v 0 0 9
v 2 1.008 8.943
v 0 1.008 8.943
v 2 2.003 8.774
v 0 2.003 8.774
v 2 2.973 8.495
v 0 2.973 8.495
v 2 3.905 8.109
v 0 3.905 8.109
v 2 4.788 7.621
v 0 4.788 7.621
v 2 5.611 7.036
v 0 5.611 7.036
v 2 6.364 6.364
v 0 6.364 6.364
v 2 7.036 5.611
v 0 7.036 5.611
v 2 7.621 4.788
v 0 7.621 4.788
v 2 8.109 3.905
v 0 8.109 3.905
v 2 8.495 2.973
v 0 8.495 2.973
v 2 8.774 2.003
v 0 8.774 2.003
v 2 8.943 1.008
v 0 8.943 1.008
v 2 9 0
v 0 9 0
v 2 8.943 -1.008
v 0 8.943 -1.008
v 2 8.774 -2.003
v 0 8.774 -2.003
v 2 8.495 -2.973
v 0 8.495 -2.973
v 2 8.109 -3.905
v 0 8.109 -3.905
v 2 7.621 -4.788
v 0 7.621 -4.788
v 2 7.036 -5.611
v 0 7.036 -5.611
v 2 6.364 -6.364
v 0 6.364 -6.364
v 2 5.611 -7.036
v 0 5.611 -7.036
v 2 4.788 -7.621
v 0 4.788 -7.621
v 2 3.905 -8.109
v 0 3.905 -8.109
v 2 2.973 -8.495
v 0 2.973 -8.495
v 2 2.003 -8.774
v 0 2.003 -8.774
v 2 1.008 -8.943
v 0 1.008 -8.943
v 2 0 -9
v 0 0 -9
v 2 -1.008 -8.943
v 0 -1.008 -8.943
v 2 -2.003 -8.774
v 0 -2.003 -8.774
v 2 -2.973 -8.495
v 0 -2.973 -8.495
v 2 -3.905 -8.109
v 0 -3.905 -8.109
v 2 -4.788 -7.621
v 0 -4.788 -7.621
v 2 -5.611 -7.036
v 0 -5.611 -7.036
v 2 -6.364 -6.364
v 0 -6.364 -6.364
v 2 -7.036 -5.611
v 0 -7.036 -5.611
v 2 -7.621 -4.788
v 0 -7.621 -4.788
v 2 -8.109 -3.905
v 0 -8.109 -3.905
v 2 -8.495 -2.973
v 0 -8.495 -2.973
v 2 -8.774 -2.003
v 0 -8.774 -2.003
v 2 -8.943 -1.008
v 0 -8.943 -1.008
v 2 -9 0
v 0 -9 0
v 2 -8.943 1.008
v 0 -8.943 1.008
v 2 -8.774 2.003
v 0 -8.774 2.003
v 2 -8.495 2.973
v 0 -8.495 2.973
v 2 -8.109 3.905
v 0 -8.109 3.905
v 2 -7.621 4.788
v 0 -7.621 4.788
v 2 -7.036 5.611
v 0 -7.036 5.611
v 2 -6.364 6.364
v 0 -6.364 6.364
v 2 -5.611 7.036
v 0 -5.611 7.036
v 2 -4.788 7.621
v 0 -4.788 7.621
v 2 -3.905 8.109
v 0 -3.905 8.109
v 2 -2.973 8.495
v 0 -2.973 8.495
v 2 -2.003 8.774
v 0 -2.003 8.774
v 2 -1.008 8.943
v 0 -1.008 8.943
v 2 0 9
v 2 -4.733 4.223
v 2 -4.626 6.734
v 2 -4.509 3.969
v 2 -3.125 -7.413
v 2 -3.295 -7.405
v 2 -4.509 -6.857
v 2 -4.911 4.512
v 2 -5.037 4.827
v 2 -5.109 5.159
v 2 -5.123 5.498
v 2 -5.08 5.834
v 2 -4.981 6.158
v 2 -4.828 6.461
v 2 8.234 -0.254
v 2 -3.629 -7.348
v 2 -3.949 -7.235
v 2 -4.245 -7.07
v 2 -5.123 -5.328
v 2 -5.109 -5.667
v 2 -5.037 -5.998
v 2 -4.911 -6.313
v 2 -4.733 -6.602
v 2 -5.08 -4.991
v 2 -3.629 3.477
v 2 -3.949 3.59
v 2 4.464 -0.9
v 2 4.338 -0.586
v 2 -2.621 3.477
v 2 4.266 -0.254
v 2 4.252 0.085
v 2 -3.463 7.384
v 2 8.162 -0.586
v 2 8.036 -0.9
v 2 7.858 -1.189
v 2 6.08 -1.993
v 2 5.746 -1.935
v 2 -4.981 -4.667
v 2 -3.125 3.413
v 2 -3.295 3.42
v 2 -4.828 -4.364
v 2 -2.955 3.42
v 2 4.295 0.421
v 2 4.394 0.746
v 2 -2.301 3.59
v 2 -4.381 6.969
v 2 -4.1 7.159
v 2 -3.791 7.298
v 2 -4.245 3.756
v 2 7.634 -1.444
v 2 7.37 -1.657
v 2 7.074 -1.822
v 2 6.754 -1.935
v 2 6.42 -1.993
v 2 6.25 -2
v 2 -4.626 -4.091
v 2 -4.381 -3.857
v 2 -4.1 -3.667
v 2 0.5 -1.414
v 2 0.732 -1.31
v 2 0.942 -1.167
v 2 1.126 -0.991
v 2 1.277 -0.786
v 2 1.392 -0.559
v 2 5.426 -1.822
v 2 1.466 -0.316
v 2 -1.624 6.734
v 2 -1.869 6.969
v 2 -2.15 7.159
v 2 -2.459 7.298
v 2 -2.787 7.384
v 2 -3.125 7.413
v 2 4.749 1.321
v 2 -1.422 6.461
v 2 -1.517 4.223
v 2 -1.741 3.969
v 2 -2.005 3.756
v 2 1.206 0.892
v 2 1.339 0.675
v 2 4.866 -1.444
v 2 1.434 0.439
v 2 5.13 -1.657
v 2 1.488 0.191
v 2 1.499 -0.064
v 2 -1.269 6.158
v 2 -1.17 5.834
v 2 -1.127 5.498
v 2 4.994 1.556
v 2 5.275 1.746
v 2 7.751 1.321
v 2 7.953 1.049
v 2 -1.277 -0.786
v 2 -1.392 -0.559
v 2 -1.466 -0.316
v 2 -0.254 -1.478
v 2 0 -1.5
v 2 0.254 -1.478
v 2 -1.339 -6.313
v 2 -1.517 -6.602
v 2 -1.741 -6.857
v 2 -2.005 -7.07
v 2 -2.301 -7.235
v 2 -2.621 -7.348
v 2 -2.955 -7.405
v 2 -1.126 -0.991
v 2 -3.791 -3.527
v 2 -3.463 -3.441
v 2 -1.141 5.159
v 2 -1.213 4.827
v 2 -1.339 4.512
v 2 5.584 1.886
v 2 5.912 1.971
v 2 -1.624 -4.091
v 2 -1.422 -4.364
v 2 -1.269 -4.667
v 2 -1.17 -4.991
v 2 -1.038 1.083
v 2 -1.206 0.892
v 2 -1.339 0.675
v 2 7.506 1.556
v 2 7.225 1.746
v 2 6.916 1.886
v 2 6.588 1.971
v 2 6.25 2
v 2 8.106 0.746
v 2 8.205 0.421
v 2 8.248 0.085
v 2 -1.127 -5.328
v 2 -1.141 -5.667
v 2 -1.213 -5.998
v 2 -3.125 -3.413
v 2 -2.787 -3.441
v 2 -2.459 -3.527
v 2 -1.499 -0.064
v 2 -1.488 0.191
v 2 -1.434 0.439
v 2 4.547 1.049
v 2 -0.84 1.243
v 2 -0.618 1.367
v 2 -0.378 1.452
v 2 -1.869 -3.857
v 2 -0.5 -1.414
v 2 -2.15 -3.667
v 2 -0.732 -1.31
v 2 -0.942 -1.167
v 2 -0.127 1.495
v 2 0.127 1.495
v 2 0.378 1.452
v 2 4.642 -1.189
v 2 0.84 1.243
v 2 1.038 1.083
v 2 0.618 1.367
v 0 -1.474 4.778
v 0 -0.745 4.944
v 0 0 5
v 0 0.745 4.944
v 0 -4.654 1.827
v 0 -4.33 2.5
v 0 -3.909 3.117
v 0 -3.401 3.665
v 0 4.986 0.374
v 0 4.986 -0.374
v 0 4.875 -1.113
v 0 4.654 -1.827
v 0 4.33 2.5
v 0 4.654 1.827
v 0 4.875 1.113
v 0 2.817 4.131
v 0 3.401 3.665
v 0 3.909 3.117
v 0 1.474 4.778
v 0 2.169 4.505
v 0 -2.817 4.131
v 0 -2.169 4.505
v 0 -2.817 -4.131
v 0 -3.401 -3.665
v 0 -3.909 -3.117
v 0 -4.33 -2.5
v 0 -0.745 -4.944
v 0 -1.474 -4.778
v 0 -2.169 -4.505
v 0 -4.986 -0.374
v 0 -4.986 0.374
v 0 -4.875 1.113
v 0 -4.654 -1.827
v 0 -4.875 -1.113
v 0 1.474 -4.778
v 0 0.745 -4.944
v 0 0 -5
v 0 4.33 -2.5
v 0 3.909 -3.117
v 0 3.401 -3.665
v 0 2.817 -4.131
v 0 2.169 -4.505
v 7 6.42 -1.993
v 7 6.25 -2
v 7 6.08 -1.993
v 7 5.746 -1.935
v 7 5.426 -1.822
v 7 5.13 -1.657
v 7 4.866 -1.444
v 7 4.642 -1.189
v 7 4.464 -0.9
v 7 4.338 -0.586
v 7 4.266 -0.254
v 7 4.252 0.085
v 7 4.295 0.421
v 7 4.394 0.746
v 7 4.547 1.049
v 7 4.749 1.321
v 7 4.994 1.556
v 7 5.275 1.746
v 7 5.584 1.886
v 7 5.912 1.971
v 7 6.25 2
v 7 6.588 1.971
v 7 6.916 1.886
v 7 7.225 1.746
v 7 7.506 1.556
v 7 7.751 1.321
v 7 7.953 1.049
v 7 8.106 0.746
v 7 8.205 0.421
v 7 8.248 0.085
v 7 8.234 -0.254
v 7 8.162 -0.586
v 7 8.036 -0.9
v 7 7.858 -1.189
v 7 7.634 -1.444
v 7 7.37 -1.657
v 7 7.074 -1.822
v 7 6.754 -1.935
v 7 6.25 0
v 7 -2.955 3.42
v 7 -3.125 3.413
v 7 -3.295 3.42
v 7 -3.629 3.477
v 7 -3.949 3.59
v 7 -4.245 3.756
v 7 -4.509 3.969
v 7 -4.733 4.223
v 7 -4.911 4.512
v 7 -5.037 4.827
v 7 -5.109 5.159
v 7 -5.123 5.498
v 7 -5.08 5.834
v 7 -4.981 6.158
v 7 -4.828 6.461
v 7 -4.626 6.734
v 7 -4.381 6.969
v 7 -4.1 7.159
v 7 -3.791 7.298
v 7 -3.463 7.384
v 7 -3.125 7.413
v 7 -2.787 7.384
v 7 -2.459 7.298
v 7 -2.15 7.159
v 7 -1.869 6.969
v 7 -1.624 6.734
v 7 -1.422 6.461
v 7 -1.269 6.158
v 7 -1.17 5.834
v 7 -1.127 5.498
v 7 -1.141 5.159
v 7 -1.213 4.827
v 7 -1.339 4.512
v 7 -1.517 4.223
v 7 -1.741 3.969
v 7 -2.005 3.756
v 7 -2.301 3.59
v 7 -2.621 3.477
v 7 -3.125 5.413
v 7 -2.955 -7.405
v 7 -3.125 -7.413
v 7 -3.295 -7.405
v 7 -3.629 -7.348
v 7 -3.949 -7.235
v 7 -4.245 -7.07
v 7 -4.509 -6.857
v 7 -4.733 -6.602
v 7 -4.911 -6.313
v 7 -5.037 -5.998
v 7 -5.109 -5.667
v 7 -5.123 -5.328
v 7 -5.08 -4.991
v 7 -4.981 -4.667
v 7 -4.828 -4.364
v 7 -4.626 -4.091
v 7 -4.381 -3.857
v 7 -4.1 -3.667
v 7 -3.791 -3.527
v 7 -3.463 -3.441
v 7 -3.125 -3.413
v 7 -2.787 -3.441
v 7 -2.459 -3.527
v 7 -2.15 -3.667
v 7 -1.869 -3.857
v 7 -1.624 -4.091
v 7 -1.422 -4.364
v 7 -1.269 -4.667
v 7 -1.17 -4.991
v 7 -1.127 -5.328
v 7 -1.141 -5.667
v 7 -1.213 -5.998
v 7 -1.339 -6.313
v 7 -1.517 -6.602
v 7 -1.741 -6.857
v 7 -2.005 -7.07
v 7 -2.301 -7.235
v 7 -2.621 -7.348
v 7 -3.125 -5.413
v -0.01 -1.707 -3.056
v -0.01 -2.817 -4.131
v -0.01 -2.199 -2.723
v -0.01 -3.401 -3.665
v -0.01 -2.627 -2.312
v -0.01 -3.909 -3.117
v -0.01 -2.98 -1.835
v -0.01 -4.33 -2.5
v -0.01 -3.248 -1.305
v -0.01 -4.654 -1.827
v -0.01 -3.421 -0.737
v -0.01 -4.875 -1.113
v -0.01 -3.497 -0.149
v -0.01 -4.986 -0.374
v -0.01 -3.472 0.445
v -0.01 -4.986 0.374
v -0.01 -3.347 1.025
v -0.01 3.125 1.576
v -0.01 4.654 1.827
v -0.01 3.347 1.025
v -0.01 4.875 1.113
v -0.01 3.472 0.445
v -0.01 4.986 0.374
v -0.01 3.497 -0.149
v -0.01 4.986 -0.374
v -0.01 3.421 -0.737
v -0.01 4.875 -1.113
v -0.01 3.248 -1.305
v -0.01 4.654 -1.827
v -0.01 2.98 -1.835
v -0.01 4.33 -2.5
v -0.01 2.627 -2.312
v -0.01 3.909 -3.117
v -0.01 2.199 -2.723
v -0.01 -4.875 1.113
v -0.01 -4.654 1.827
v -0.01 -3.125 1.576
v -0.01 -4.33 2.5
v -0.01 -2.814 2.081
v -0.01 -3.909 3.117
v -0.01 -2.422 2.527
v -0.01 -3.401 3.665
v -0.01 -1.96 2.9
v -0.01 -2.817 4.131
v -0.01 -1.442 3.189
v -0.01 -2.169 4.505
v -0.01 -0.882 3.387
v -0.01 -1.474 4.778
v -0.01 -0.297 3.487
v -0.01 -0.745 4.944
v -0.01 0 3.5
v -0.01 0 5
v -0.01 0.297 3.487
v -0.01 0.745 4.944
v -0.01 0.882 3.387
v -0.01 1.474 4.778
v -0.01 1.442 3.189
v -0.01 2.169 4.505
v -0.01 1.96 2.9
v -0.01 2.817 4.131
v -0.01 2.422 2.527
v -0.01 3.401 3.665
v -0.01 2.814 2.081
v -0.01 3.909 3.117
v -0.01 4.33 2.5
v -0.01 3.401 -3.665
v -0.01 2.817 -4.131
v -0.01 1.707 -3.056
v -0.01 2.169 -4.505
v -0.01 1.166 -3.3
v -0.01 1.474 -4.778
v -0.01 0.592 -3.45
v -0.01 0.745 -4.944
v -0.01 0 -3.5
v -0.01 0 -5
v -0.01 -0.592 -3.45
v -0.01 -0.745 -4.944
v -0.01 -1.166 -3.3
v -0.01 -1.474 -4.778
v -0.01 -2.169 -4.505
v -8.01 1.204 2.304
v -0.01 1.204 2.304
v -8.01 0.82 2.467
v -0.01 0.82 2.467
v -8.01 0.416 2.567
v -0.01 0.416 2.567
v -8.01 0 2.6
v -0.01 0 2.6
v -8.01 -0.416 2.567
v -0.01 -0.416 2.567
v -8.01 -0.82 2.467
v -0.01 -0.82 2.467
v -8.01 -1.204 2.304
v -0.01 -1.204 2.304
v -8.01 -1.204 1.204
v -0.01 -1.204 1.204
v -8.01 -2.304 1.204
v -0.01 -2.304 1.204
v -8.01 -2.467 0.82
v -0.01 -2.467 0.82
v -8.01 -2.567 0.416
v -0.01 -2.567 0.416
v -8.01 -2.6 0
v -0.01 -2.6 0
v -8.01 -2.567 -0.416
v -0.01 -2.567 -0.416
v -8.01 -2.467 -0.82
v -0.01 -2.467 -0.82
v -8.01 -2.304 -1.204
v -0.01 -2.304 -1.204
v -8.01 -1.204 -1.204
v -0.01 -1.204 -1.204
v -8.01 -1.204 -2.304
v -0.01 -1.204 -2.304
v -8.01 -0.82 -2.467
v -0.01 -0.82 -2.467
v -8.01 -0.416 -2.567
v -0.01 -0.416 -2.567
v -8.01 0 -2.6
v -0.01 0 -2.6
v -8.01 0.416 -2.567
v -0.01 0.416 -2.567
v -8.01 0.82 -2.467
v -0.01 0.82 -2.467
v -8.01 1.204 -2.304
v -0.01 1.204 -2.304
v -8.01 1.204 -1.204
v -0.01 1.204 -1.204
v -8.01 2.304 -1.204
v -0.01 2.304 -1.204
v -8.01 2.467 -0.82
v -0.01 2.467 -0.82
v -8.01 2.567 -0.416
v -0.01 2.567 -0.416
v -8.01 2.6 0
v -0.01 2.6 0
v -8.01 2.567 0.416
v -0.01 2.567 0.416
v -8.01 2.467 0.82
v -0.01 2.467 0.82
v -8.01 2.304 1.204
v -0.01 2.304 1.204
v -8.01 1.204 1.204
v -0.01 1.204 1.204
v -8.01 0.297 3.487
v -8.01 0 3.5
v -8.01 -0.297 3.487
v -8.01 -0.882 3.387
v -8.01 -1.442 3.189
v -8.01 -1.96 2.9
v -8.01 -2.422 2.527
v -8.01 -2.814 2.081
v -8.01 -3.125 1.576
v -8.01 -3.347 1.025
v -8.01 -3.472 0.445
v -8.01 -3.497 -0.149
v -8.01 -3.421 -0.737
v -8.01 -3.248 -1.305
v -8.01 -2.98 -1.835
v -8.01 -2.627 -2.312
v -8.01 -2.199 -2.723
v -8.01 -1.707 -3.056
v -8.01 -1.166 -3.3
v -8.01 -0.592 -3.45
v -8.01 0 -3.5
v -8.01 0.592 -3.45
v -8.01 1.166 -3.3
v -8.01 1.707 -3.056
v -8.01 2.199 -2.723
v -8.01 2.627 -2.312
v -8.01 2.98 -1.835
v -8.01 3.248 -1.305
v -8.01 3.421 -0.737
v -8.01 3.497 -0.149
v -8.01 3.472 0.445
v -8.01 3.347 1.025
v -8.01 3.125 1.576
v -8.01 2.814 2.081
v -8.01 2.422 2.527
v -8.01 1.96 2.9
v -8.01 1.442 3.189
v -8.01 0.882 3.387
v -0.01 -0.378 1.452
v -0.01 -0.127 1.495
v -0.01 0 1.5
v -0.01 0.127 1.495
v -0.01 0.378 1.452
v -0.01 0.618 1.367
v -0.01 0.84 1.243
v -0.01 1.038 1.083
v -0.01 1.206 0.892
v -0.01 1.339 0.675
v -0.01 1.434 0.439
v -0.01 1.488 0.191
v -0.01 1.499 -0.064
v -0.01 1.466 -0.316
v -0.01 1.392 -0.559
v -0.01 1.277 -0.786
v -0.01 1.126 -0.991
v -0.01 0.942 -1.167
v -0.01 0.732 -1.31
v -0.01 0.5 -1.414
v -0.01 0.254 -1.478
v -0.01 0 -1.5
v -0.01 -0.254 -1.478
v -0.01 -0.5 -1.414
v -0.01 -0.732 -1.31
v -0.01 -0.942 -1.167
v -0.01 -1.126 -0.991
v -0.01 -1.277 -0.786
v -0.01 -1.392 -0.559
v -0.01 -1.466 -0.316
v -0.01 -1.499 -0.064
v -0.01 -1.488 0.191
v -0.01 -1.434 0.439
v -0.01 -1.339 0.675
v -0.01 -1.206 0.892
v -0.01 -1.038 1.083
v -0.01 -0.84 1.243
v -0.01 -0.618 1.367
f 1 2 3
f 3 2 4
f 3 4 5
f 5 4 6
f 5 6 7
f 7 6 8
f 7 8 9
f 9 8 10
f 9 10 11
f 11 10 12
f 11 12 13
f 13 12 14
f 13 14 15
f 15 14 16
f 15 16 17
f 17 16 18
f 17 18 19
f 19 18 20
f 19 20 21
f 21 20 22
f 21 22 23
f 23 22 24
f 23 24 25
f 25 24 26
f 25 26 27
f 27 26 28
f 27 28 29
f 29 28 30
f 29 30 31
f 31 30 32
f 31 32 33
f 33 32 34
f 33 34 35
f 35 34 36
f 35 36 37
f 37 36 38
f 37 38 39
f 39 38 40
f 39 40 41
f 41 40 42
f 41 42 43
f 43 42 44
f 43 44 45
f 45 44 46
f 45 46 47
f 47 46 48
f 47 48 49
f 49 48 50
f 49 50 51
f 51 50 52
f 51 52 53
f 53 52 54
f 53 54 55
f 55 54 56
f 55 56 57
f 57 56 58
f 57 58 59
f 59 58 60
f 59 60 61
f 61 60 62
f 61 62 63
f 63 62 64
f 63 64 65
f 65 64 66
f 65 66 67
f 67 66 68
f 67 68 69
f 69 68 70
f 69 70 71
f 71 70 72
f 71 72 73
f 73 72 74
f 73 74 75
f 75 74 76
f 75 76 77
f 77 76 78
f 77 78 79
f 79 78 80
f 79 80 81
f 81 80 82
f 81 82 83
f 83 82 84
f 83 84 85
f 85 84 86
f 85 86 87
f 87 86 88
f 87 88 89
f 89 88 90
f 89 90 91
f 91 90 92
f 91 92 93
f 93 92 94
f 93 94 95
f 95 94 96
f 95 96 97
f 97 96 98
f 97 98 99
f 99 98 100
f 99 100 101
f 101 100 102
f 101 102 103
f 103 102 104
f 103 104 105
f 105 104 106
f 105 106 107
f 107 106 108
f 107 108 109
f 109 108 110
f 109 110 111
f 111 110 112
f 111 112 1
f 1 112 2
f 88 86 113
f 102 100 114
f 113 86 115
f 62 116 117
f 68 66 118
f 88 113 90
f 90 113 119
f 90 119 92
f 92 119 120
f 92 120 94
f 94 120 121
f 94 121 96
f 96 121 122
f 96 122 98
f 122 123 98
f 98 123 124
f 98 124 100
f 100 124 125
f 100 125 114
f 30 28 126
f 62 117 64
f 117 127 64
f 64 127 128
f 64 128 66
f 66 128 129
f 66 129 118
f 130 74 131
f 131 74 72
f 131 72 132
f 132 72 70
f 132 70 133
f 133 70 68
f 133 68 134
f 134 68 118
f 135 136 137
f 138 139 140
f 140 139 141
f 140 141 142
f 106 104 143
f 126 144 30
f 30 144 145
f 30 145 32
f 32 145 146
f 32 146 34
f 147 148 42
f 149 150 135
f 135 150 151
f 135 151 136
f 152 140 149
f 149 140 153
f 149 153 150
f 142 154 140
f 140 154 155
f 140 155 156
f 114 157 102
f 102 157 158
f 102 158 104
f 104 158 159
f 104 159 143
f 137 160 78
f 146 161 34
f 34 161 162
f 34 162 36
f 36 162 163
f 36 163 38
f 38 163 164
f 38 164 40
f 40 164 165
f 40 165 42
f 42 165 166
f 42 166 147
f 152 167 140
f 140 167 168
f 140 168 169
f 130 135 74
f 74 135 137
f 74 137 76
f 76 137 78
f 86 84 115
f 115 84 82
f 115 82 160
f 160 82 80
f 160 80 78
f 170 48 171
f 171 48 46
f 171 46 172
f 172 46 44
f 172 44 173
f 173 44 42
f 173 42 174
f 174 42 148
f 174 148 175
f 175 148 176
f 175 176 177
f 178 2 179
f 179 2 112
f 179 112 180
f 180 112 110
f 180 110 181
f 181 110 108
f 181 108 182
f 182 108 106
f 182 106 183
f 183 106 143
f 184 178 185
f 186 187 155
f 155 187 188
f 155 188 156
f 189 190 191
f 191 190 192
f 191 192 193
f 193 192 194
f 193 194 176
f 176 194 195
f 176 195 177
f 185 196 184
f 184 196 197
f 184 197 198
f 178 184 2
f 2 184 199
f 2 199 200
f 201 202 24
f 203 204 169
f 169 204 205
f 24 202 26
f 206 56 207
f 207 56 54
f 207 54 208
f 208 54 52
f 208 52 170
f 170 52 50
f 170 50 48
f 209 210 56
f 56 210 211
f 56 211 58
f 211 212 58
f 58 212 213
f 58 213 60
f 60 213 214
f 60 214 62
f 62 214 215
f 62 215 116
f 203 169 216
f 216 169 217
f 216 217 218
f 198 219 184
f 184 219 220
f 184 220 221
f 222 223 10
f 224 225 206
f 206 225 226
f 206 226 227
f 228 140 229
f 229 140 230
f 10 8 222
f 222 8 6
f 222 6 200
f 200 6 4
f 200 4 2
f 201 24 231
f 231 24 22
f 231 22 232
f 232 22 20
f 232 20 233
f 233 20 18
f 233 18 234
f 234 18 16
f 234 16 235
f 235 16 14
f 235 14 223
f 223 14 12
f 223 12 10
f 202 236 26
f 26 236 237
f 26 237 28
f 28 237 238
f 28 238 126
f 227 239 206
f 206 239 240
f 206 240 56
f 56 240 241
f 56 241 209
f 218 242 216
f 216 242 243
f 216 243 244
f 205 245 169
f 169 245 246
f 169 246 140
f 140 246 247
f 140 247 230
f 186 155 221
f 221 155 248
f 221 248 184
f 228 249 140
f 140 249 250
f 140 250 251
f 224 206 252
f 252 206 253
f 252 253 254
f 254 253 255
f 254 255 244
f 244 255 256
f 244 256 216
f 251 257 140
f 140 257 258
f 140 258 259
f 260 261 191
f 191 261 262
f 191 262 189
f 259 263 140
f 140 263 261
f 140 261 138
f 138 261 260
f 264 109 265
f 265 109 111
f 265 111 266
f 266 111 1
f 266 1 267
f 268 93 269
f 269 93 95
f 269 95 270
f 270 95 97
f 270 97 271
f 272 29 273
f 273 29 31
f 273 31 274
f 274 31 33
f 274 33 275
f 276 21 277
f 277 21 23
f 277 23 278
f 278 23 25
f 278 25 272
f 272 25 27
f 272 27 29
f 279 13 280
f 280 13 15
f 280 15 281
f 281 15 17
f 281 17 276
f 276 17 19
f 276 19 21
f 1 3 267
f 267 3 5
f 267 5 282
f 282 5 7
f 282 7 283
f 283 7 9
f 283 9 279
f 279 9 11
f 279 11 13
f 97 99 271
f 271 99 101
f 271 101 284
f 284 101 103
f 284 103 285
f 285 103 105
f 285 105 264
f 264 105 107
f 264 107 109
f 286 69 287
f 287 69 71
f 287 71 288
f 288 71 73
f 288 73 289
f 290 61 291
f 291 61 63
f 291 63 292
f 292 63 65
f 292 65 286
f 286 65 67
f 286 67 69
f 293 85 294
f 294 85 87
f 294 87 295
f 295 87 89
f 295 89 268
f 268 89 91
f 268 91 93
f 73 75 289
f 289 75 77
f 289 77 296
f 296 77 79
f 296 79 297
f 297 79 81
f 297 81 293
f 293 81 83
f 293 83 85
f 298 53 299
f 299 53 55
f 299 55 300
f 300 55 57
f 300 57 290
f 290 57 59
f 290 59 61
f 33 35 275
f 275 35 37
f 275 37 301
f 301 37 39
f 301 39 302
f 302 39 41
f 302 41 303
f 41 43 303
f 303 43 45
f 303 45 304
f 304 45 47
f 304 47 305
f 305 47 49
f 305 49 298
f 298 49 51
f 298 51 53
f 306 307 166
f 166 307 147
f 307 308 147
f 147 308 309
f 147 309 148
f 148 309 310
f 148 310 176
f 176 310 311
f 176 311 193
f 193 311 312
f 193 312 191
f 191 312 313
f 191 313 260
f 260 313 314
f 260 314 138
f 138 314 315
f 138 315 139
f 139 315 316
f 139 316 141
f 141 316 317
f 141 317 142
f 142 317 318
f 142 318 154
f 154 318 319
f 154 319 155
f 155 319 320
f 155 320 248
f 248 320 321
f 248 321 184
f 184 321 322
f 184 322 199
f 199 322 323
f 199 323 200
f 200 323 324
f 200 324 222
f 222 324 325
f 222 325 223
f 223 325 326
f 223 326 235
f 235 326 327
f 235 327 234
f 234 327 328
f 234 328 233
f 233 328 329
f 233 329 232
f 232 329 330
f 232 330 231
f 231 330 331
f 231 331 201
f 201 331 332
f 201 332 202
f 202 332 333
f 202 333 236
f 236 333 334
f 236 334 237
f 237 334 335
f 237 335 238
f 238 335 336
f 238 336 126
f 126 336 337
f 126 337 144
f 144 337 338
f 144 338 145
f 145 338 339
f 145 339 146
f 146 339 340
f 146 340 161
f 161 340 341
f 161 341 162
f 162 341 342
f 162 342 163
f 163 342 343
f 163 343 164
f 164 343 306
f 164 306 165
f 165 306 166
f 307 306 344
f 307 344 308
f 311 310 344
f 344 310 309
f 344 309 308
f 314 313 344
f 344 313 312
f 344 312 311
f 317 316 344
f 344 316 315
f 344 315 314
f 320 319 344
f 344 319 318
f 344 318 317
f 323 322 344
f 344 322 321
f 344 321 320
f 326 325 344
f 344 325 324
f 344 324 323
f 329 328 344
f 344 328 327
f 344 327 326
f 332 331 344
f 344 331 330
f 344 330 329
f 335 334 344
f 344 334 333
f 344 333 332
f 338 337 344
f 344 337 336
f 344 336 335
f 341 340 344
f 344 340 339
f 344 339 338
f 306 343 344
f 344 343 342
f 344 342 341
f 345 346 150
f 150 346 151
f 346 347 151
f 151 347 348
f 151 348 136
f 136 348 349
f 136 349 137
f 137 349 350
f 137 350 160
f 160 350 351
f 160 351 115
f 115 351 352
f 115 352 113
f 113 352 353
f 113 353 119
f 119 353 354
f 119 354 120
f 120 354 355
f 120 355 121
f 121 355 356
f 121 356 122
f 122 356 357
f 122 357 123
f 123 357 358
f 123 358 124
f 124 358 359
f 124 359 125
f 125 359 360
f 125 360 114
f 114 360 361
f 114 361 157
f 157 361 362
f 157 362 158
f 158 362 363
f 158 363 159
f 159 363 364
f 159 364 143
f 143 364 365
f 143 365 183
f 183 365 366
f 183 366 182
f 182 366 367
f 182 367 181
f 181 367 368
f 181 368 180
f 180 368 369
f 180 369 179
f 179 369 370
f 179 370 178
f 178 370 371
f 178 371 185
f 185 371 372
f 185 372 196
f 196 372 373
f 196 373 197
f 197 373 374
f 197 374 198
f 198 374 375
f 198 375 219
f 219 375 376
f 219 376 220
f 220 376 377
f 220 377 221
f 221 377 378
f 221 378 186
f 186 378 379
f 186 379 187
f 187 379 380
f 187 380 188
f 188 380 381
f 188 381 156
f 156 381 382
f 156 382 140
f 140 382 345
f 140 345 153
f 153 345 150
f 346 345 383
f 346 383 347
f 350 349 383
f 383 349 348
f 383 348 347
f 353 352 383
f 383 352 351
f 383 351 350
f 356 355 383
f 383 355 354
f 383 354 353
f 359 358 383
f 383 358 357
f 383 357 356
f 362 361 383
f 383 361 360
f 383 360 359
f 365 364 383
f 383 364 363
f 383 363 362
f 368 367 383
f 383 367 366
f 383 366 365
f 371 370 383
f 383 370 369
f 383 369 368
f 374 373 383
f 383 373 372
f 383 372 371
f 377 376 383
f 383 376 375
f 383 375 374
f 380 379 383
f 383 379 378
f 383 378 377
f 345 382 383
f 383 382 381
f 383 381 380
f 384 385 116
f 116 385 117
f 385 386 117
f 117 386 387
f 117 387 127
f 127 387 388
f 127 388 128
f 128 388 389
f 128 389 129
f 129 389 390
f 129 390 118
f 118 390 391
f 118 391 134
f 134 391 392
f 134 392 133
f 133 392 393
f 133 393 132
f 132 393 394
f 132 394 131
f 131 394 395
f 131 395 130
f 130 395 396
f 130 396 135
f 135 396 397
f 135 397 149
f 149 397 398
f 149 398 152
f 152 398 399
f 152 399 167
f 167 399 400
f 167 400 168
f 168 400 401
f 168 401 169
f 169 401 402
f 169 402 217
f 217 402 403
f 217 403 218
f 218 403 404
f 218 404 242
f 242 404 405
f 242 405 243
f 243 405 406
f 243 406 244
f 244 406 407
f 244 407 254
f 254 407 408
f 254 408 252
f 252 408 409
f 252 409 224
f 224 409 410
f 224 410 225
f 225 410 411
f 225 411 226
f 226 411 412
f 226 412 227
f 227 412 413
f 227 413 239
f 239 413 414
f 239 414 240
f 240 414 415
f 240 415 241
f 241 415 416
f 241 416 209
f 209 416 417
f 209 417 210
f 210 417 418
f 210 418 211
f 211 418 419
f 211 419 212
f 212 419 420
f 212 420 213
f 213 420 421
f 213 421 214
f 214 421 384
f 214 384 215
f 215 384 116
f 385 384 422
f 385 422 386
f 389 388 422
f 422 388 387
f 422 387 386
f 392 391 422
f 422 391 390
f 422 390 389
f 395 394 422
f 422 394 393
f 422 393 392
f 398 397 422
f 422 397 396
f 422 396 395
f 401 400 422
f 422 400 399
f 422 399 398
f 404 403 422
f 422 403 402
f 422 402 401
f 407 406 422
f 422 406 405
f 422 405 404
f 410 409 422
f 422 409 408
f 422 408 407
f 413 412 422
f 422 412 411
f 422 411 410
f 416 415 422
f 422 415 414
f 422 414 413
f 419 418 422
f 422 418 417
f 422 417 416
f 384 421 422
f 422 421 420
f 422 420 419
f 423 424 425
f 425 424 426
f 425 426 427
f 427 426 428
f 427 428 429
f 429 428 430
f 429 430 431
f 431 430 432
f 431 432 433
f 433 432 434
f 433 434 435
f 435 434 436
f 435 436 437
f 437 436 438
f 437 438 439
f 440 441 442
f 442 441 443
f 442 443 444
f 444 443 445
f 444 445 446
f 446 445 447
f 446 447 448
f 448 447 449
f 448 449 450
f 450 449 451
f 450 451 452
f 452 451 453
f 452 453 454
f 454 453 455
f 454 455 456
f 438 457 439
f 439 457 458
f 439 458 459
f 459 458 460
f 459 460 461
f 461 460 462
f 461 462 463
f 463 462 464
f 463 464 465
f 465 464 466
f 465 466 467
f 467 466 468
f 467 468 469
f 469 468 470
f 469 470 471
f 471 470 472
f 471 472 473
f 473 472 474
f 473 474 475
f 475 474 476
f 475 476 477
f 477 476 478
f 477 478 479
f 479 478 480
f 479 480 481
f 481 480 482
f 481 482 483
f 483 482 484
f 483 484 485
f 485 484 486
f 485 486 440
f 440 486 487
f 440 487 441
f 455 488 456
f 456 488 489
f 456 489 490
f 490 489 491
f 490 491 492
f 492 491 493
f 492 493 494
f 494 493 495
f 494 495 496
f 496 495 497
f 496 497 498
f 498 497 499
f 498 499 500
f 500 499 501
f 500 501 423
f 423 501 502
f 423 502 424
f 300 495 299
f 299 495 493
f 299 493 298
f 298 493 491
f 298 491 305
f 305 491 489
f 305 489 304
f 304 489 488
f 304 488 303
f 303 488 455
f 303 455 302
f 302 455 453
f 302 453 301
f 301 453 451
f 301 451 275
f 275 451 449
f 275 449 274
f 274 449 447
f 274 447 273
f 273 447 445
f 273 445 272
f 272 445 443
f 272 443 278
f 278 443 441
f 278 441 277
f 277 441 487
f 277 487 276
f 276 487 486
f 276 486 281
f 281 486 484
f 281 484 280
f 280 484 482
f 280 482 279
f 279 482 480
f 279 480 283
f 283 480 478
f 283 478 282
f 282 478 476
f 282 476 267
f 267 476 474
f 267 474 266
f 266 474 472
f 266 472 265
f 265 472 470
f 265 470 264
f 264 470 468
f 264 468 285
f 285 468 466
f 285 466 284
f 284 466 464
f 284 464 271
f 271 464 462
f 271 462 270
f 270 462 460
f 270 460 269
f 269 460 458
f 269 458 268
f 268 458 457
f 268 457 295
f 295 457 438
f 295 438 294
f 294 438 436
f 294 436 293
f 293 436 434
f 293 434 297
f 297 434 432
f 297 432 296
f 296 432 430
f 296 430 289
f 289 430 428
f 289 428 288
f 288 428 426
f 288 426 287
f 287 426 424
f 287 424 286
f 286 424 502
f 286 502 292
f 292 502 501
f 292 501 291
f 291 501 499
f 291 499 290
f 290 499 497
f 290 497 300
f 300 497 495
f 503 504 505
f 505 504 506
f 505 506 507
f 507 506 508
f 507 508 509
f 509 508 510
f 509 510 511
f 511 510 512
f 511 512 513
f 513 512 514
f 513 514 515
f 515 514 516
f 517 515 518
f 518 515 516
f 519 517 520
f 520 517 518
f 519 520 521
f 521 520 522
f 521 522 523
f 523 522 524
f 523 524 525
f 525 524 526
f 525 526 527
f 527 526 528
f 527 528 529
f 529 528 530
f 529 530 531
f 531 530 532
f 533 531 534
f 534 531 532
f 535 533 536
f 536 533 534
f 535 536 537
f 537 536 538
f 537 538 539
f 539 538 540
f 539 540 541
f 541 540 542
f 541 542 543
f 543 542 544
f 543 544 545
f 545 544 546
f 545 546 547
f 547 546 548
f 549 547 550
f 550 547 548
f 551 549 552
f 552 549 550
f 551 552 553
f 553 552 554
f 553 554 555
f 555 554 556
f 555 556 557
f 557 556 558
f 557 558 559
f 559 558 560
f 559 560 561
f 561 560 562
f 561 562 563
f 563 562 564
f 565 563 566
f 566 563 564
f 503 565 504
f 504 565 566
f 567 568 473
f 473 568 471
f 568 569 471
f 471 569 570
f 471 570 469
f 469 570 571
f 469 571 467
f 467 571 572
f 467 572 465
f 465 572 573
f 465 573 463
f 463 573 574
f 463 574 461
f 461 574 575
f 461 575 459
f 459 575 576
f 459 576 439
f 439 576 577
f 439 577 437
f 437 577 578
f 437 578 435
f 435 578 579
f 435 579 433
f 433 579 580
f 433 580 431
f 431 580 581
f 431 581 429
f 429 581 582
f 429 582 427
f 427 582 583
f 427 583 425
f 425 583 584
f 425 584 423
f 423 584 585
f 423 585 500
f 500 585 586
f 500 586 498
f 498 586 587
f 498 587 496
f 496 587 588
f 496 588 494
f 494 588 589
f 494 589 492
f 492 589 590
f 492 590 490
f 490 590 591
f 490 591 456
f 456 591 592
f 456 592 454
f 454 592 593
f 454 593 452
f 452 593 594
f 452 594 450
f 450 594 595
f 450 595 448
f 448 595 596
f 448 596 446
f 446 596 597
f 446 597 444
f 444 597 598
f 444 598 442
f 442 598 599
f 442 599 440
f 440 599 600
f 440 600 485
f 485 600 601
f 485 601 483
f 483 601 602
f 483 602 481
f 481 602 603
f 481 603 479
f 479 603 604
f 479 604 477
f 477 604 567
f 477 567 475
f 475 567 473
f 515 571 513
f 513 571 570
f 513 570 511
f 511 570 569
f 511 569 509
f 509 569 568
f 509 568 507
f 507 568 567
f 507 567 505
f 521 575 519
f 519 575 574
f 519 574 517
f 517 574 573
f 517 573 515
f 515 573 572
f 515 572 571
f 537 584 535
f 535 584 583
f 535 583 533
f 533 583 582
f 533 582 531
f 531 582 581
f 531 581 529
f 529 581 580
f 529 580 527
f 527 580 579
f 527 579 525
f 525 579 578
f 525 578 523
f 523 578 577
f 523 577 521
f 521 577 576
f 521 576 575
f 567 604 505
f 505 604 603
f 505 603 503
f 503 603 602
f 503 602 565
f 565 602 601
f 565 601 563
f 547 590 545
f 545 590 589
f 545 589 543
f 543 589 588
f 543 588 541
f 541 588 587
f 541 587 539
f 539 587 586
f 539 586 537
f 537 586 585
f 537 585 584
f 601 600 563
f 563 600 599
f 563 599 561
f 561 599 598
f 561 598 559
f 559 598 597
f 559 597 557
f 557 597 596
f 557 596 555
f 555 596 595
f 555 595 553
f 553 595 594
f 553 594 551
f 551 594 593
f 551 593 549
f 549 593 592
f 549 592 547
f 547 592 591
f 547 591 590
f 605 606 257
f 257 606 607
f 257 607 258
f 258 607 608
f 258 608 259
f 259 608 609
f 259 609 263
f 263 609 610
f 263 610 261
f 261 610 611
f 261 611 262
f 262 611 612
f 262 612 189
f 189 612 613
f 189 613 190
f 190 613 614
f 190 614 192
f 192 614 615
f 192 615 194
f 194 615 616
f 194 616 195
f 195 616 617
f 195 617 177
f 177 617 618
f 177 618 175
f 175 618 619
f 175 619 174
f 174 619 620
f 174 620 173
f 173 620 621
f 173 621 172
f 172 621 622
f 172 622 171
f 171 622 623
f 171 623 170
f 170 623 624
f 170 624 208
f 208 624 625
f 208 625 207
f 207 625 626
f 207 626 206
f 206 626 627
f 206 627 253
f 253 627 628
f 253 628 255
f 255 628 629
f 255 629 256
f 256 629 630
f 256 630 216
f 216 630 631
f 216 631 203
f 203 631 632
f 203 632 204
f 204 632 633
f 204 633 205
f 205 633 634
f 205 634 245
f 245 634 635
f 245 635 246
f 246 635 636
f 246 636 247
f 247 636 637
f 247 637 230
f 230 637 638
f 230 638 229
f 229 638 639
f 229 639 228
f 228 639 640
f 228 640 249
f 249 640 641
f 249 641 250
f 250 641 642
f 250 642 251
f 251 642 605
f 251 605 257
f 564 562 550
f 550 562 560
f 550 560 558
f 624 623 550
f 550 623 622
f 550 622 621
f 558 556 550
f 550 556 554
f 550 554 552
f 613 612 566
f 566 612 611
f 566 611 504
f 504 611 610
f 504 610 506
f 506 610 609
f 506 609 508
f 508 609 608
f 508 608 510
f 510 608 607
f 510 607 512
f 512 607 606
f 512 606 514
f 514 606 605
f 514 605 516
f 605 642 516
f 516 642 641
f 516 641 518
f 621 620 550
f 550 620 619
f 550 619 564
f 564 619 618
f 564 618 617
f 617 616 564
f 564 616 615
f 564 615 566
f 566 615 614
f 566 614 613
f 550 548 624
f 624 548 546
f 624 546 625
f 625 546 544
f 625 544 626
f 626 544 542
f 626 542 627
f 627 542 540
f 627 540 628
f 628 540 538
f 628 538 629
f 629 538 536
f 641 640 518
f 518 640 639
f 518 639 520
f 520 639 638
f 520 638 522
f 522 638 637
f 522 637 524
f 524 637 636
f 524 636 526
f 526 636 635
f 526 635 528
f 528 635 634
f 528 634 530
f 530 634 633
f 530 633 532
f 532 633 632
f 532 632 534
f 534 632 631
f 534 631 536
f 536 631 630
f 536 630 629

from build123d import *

# Parameters (mm, degrees)
SKETCH_1_R          = 9
EXTRUDE_1_DEPTH     = 2
EXTRUDE_START       = 2
SKETCH_1_3_R        = 2
EXTRUDE_2_DEPTH     = 5
SKETCH_2_R          = 5
SKETCH_2_R_2        = 1.5
EXTRUDE_3_DEPTH     = 0.01
SKETCH_3_R          = 3.5
SKETCH_3_R_2        = 2.6
EXTRUDE_4_DEPTH     = 8
CUT_EXTRUDE_1_REACH = 17.039
SKETCH_2_5_R        = 1.5


with BuildPart() as part:
    # 草图1 → 凸台-拉伸1 (new body)
    with BuildSketch(Plane(origin=(0, 0, 0), x_dir=(0, 0, -1), z_dir=(1, 0, 0))):
        Circle(SKETCH_1_R)
    extrude(amount=EXTRUDE_1_DEPTH)

    # 草图1<3> → 凸台-拉伸2 (add)
    with BuildSketch(Plane(origin=(0, 0, 0), x_dir=(0, 0, -1), z_dir=(1, 0, 0)).offset(EXTRUDE_START)):
        with Locations((0, 6.25)):
            Circle(SKETCH_1_3_R)
        with Locations((-5.412658774, -3.125)):
            Circle(SKETCH_1_3_R)
        with Locations((5.412658774, -3.125)):
            Circle(SKETCH_1_3_R)
    extrude(amount=EXTRUDE_2_DEPTH)

    # 草图2 → 凸台-拉伸3 (add)
    with BuildSketch(Plane.ZY):
        with Locations(Location((0, 0, 0), (0, 0, 180))):
            Circle(SKETCH_2_R)
        with Locations(Location((0, 0, 0), (0, 0, 180))):
            Circle(SKETCH_2_R_2, mode=Mode.SUBTRACT)
    extrude(amount=EXTRUDE_3_DEPTH)

    # 草图3 → 凸台-拉伸4 (add)
    # profile 1 of 5: a face of its own
    with BuildSketch(Plane.ZY.offset(0.01)):
        Circle(SKETCH_3_R)
        Circle(SKETCH_3_R_2, mode=Mode.SUBTRACT)
    # profile 2 of 5: a face of its own
    with BuildSketch(Plane.ZY.offset(0.01)):
        with BuildLine():
            ThreePointArc((-1.204280479, 2.304280479), (-1.838477631, 1.838477631), (-2.304280479, 1.204280479))
            Line((-2.304280479, 1.204280479), (-1.204280479, 1.204280479))
            Line((-1.204280479, 1.204280479), (-1.204280479, 2.304280479))
        make_face()
    # profile 3 of 5: a face of its own
    with BuildSketch(Plane.ZY.offset(0.01)):
        with BuildLine():
            Line((-1.204280479, -1.204280479), (-2.304280479, -1.204280479))
            ThreePointArc((-2.304280479, -1.204280479), (-1.838477631, -1.838477631), (-1.204280479, -2.304280479))
            Line((-1.204280479, -2.304280479), (-1.204280479, -1.204280479))
        make_face()
    # profile 4 of 5: a face of its own
    with BuildSketch(Plane.ZY.offset(0.01)):
        with BuildLine():
            Line((2.304280479, -1.204280479), (1.204280479, -1.204280479))
            Line((1.204280479, -1.204280479), (1.204280479, -2.304280479))
            ThreePointArc((1.204280479, -2.304280479), (1.838477631, -1.838477631), (2.304280479, -1.204280479))
        make_face()
    # profile 5 of 5: a face of its own
    with BuildSketch(Plane.ZY.offset(0.01)):
        with BuildLine():
            Line((1.204280479, 2.304280479), (1.204280479, 1.204280479))
            Line((1.204280479, 1.204280479), (2.304280479, 1.204280479))
            ThreePointArc((2.304280479, 1.204280479), (1.838477631, 1.838477631), (1.204280479, 2.304280479))
        make_face()
    extrude(amount=EXTRUDE_4_DEPTH)

    # 草图2<5> → 切除-拉伸1 (cut, up to next)
    with BuildSketch(Plane.ZY, mode=Mode.PRIVATE) as cut_extrude_1_sk1:
        with Locations(Location((0, 0, 0), (0, 0, 180))):
            Circle(SKETCH_2_5_R)
    cut_extrude_1_tool1 = extrude(cut_extrude_1_sk1.sketch, amount=-CUT_EXTRUDE_1_REACH, mode=Mode.PRIVATE) & part.part
    add(cut_extrude_1_tool1.solids().sort_by_distance((0, 0, 0))[0], mode=Mode.SUBTRACT)


solid = part.part
